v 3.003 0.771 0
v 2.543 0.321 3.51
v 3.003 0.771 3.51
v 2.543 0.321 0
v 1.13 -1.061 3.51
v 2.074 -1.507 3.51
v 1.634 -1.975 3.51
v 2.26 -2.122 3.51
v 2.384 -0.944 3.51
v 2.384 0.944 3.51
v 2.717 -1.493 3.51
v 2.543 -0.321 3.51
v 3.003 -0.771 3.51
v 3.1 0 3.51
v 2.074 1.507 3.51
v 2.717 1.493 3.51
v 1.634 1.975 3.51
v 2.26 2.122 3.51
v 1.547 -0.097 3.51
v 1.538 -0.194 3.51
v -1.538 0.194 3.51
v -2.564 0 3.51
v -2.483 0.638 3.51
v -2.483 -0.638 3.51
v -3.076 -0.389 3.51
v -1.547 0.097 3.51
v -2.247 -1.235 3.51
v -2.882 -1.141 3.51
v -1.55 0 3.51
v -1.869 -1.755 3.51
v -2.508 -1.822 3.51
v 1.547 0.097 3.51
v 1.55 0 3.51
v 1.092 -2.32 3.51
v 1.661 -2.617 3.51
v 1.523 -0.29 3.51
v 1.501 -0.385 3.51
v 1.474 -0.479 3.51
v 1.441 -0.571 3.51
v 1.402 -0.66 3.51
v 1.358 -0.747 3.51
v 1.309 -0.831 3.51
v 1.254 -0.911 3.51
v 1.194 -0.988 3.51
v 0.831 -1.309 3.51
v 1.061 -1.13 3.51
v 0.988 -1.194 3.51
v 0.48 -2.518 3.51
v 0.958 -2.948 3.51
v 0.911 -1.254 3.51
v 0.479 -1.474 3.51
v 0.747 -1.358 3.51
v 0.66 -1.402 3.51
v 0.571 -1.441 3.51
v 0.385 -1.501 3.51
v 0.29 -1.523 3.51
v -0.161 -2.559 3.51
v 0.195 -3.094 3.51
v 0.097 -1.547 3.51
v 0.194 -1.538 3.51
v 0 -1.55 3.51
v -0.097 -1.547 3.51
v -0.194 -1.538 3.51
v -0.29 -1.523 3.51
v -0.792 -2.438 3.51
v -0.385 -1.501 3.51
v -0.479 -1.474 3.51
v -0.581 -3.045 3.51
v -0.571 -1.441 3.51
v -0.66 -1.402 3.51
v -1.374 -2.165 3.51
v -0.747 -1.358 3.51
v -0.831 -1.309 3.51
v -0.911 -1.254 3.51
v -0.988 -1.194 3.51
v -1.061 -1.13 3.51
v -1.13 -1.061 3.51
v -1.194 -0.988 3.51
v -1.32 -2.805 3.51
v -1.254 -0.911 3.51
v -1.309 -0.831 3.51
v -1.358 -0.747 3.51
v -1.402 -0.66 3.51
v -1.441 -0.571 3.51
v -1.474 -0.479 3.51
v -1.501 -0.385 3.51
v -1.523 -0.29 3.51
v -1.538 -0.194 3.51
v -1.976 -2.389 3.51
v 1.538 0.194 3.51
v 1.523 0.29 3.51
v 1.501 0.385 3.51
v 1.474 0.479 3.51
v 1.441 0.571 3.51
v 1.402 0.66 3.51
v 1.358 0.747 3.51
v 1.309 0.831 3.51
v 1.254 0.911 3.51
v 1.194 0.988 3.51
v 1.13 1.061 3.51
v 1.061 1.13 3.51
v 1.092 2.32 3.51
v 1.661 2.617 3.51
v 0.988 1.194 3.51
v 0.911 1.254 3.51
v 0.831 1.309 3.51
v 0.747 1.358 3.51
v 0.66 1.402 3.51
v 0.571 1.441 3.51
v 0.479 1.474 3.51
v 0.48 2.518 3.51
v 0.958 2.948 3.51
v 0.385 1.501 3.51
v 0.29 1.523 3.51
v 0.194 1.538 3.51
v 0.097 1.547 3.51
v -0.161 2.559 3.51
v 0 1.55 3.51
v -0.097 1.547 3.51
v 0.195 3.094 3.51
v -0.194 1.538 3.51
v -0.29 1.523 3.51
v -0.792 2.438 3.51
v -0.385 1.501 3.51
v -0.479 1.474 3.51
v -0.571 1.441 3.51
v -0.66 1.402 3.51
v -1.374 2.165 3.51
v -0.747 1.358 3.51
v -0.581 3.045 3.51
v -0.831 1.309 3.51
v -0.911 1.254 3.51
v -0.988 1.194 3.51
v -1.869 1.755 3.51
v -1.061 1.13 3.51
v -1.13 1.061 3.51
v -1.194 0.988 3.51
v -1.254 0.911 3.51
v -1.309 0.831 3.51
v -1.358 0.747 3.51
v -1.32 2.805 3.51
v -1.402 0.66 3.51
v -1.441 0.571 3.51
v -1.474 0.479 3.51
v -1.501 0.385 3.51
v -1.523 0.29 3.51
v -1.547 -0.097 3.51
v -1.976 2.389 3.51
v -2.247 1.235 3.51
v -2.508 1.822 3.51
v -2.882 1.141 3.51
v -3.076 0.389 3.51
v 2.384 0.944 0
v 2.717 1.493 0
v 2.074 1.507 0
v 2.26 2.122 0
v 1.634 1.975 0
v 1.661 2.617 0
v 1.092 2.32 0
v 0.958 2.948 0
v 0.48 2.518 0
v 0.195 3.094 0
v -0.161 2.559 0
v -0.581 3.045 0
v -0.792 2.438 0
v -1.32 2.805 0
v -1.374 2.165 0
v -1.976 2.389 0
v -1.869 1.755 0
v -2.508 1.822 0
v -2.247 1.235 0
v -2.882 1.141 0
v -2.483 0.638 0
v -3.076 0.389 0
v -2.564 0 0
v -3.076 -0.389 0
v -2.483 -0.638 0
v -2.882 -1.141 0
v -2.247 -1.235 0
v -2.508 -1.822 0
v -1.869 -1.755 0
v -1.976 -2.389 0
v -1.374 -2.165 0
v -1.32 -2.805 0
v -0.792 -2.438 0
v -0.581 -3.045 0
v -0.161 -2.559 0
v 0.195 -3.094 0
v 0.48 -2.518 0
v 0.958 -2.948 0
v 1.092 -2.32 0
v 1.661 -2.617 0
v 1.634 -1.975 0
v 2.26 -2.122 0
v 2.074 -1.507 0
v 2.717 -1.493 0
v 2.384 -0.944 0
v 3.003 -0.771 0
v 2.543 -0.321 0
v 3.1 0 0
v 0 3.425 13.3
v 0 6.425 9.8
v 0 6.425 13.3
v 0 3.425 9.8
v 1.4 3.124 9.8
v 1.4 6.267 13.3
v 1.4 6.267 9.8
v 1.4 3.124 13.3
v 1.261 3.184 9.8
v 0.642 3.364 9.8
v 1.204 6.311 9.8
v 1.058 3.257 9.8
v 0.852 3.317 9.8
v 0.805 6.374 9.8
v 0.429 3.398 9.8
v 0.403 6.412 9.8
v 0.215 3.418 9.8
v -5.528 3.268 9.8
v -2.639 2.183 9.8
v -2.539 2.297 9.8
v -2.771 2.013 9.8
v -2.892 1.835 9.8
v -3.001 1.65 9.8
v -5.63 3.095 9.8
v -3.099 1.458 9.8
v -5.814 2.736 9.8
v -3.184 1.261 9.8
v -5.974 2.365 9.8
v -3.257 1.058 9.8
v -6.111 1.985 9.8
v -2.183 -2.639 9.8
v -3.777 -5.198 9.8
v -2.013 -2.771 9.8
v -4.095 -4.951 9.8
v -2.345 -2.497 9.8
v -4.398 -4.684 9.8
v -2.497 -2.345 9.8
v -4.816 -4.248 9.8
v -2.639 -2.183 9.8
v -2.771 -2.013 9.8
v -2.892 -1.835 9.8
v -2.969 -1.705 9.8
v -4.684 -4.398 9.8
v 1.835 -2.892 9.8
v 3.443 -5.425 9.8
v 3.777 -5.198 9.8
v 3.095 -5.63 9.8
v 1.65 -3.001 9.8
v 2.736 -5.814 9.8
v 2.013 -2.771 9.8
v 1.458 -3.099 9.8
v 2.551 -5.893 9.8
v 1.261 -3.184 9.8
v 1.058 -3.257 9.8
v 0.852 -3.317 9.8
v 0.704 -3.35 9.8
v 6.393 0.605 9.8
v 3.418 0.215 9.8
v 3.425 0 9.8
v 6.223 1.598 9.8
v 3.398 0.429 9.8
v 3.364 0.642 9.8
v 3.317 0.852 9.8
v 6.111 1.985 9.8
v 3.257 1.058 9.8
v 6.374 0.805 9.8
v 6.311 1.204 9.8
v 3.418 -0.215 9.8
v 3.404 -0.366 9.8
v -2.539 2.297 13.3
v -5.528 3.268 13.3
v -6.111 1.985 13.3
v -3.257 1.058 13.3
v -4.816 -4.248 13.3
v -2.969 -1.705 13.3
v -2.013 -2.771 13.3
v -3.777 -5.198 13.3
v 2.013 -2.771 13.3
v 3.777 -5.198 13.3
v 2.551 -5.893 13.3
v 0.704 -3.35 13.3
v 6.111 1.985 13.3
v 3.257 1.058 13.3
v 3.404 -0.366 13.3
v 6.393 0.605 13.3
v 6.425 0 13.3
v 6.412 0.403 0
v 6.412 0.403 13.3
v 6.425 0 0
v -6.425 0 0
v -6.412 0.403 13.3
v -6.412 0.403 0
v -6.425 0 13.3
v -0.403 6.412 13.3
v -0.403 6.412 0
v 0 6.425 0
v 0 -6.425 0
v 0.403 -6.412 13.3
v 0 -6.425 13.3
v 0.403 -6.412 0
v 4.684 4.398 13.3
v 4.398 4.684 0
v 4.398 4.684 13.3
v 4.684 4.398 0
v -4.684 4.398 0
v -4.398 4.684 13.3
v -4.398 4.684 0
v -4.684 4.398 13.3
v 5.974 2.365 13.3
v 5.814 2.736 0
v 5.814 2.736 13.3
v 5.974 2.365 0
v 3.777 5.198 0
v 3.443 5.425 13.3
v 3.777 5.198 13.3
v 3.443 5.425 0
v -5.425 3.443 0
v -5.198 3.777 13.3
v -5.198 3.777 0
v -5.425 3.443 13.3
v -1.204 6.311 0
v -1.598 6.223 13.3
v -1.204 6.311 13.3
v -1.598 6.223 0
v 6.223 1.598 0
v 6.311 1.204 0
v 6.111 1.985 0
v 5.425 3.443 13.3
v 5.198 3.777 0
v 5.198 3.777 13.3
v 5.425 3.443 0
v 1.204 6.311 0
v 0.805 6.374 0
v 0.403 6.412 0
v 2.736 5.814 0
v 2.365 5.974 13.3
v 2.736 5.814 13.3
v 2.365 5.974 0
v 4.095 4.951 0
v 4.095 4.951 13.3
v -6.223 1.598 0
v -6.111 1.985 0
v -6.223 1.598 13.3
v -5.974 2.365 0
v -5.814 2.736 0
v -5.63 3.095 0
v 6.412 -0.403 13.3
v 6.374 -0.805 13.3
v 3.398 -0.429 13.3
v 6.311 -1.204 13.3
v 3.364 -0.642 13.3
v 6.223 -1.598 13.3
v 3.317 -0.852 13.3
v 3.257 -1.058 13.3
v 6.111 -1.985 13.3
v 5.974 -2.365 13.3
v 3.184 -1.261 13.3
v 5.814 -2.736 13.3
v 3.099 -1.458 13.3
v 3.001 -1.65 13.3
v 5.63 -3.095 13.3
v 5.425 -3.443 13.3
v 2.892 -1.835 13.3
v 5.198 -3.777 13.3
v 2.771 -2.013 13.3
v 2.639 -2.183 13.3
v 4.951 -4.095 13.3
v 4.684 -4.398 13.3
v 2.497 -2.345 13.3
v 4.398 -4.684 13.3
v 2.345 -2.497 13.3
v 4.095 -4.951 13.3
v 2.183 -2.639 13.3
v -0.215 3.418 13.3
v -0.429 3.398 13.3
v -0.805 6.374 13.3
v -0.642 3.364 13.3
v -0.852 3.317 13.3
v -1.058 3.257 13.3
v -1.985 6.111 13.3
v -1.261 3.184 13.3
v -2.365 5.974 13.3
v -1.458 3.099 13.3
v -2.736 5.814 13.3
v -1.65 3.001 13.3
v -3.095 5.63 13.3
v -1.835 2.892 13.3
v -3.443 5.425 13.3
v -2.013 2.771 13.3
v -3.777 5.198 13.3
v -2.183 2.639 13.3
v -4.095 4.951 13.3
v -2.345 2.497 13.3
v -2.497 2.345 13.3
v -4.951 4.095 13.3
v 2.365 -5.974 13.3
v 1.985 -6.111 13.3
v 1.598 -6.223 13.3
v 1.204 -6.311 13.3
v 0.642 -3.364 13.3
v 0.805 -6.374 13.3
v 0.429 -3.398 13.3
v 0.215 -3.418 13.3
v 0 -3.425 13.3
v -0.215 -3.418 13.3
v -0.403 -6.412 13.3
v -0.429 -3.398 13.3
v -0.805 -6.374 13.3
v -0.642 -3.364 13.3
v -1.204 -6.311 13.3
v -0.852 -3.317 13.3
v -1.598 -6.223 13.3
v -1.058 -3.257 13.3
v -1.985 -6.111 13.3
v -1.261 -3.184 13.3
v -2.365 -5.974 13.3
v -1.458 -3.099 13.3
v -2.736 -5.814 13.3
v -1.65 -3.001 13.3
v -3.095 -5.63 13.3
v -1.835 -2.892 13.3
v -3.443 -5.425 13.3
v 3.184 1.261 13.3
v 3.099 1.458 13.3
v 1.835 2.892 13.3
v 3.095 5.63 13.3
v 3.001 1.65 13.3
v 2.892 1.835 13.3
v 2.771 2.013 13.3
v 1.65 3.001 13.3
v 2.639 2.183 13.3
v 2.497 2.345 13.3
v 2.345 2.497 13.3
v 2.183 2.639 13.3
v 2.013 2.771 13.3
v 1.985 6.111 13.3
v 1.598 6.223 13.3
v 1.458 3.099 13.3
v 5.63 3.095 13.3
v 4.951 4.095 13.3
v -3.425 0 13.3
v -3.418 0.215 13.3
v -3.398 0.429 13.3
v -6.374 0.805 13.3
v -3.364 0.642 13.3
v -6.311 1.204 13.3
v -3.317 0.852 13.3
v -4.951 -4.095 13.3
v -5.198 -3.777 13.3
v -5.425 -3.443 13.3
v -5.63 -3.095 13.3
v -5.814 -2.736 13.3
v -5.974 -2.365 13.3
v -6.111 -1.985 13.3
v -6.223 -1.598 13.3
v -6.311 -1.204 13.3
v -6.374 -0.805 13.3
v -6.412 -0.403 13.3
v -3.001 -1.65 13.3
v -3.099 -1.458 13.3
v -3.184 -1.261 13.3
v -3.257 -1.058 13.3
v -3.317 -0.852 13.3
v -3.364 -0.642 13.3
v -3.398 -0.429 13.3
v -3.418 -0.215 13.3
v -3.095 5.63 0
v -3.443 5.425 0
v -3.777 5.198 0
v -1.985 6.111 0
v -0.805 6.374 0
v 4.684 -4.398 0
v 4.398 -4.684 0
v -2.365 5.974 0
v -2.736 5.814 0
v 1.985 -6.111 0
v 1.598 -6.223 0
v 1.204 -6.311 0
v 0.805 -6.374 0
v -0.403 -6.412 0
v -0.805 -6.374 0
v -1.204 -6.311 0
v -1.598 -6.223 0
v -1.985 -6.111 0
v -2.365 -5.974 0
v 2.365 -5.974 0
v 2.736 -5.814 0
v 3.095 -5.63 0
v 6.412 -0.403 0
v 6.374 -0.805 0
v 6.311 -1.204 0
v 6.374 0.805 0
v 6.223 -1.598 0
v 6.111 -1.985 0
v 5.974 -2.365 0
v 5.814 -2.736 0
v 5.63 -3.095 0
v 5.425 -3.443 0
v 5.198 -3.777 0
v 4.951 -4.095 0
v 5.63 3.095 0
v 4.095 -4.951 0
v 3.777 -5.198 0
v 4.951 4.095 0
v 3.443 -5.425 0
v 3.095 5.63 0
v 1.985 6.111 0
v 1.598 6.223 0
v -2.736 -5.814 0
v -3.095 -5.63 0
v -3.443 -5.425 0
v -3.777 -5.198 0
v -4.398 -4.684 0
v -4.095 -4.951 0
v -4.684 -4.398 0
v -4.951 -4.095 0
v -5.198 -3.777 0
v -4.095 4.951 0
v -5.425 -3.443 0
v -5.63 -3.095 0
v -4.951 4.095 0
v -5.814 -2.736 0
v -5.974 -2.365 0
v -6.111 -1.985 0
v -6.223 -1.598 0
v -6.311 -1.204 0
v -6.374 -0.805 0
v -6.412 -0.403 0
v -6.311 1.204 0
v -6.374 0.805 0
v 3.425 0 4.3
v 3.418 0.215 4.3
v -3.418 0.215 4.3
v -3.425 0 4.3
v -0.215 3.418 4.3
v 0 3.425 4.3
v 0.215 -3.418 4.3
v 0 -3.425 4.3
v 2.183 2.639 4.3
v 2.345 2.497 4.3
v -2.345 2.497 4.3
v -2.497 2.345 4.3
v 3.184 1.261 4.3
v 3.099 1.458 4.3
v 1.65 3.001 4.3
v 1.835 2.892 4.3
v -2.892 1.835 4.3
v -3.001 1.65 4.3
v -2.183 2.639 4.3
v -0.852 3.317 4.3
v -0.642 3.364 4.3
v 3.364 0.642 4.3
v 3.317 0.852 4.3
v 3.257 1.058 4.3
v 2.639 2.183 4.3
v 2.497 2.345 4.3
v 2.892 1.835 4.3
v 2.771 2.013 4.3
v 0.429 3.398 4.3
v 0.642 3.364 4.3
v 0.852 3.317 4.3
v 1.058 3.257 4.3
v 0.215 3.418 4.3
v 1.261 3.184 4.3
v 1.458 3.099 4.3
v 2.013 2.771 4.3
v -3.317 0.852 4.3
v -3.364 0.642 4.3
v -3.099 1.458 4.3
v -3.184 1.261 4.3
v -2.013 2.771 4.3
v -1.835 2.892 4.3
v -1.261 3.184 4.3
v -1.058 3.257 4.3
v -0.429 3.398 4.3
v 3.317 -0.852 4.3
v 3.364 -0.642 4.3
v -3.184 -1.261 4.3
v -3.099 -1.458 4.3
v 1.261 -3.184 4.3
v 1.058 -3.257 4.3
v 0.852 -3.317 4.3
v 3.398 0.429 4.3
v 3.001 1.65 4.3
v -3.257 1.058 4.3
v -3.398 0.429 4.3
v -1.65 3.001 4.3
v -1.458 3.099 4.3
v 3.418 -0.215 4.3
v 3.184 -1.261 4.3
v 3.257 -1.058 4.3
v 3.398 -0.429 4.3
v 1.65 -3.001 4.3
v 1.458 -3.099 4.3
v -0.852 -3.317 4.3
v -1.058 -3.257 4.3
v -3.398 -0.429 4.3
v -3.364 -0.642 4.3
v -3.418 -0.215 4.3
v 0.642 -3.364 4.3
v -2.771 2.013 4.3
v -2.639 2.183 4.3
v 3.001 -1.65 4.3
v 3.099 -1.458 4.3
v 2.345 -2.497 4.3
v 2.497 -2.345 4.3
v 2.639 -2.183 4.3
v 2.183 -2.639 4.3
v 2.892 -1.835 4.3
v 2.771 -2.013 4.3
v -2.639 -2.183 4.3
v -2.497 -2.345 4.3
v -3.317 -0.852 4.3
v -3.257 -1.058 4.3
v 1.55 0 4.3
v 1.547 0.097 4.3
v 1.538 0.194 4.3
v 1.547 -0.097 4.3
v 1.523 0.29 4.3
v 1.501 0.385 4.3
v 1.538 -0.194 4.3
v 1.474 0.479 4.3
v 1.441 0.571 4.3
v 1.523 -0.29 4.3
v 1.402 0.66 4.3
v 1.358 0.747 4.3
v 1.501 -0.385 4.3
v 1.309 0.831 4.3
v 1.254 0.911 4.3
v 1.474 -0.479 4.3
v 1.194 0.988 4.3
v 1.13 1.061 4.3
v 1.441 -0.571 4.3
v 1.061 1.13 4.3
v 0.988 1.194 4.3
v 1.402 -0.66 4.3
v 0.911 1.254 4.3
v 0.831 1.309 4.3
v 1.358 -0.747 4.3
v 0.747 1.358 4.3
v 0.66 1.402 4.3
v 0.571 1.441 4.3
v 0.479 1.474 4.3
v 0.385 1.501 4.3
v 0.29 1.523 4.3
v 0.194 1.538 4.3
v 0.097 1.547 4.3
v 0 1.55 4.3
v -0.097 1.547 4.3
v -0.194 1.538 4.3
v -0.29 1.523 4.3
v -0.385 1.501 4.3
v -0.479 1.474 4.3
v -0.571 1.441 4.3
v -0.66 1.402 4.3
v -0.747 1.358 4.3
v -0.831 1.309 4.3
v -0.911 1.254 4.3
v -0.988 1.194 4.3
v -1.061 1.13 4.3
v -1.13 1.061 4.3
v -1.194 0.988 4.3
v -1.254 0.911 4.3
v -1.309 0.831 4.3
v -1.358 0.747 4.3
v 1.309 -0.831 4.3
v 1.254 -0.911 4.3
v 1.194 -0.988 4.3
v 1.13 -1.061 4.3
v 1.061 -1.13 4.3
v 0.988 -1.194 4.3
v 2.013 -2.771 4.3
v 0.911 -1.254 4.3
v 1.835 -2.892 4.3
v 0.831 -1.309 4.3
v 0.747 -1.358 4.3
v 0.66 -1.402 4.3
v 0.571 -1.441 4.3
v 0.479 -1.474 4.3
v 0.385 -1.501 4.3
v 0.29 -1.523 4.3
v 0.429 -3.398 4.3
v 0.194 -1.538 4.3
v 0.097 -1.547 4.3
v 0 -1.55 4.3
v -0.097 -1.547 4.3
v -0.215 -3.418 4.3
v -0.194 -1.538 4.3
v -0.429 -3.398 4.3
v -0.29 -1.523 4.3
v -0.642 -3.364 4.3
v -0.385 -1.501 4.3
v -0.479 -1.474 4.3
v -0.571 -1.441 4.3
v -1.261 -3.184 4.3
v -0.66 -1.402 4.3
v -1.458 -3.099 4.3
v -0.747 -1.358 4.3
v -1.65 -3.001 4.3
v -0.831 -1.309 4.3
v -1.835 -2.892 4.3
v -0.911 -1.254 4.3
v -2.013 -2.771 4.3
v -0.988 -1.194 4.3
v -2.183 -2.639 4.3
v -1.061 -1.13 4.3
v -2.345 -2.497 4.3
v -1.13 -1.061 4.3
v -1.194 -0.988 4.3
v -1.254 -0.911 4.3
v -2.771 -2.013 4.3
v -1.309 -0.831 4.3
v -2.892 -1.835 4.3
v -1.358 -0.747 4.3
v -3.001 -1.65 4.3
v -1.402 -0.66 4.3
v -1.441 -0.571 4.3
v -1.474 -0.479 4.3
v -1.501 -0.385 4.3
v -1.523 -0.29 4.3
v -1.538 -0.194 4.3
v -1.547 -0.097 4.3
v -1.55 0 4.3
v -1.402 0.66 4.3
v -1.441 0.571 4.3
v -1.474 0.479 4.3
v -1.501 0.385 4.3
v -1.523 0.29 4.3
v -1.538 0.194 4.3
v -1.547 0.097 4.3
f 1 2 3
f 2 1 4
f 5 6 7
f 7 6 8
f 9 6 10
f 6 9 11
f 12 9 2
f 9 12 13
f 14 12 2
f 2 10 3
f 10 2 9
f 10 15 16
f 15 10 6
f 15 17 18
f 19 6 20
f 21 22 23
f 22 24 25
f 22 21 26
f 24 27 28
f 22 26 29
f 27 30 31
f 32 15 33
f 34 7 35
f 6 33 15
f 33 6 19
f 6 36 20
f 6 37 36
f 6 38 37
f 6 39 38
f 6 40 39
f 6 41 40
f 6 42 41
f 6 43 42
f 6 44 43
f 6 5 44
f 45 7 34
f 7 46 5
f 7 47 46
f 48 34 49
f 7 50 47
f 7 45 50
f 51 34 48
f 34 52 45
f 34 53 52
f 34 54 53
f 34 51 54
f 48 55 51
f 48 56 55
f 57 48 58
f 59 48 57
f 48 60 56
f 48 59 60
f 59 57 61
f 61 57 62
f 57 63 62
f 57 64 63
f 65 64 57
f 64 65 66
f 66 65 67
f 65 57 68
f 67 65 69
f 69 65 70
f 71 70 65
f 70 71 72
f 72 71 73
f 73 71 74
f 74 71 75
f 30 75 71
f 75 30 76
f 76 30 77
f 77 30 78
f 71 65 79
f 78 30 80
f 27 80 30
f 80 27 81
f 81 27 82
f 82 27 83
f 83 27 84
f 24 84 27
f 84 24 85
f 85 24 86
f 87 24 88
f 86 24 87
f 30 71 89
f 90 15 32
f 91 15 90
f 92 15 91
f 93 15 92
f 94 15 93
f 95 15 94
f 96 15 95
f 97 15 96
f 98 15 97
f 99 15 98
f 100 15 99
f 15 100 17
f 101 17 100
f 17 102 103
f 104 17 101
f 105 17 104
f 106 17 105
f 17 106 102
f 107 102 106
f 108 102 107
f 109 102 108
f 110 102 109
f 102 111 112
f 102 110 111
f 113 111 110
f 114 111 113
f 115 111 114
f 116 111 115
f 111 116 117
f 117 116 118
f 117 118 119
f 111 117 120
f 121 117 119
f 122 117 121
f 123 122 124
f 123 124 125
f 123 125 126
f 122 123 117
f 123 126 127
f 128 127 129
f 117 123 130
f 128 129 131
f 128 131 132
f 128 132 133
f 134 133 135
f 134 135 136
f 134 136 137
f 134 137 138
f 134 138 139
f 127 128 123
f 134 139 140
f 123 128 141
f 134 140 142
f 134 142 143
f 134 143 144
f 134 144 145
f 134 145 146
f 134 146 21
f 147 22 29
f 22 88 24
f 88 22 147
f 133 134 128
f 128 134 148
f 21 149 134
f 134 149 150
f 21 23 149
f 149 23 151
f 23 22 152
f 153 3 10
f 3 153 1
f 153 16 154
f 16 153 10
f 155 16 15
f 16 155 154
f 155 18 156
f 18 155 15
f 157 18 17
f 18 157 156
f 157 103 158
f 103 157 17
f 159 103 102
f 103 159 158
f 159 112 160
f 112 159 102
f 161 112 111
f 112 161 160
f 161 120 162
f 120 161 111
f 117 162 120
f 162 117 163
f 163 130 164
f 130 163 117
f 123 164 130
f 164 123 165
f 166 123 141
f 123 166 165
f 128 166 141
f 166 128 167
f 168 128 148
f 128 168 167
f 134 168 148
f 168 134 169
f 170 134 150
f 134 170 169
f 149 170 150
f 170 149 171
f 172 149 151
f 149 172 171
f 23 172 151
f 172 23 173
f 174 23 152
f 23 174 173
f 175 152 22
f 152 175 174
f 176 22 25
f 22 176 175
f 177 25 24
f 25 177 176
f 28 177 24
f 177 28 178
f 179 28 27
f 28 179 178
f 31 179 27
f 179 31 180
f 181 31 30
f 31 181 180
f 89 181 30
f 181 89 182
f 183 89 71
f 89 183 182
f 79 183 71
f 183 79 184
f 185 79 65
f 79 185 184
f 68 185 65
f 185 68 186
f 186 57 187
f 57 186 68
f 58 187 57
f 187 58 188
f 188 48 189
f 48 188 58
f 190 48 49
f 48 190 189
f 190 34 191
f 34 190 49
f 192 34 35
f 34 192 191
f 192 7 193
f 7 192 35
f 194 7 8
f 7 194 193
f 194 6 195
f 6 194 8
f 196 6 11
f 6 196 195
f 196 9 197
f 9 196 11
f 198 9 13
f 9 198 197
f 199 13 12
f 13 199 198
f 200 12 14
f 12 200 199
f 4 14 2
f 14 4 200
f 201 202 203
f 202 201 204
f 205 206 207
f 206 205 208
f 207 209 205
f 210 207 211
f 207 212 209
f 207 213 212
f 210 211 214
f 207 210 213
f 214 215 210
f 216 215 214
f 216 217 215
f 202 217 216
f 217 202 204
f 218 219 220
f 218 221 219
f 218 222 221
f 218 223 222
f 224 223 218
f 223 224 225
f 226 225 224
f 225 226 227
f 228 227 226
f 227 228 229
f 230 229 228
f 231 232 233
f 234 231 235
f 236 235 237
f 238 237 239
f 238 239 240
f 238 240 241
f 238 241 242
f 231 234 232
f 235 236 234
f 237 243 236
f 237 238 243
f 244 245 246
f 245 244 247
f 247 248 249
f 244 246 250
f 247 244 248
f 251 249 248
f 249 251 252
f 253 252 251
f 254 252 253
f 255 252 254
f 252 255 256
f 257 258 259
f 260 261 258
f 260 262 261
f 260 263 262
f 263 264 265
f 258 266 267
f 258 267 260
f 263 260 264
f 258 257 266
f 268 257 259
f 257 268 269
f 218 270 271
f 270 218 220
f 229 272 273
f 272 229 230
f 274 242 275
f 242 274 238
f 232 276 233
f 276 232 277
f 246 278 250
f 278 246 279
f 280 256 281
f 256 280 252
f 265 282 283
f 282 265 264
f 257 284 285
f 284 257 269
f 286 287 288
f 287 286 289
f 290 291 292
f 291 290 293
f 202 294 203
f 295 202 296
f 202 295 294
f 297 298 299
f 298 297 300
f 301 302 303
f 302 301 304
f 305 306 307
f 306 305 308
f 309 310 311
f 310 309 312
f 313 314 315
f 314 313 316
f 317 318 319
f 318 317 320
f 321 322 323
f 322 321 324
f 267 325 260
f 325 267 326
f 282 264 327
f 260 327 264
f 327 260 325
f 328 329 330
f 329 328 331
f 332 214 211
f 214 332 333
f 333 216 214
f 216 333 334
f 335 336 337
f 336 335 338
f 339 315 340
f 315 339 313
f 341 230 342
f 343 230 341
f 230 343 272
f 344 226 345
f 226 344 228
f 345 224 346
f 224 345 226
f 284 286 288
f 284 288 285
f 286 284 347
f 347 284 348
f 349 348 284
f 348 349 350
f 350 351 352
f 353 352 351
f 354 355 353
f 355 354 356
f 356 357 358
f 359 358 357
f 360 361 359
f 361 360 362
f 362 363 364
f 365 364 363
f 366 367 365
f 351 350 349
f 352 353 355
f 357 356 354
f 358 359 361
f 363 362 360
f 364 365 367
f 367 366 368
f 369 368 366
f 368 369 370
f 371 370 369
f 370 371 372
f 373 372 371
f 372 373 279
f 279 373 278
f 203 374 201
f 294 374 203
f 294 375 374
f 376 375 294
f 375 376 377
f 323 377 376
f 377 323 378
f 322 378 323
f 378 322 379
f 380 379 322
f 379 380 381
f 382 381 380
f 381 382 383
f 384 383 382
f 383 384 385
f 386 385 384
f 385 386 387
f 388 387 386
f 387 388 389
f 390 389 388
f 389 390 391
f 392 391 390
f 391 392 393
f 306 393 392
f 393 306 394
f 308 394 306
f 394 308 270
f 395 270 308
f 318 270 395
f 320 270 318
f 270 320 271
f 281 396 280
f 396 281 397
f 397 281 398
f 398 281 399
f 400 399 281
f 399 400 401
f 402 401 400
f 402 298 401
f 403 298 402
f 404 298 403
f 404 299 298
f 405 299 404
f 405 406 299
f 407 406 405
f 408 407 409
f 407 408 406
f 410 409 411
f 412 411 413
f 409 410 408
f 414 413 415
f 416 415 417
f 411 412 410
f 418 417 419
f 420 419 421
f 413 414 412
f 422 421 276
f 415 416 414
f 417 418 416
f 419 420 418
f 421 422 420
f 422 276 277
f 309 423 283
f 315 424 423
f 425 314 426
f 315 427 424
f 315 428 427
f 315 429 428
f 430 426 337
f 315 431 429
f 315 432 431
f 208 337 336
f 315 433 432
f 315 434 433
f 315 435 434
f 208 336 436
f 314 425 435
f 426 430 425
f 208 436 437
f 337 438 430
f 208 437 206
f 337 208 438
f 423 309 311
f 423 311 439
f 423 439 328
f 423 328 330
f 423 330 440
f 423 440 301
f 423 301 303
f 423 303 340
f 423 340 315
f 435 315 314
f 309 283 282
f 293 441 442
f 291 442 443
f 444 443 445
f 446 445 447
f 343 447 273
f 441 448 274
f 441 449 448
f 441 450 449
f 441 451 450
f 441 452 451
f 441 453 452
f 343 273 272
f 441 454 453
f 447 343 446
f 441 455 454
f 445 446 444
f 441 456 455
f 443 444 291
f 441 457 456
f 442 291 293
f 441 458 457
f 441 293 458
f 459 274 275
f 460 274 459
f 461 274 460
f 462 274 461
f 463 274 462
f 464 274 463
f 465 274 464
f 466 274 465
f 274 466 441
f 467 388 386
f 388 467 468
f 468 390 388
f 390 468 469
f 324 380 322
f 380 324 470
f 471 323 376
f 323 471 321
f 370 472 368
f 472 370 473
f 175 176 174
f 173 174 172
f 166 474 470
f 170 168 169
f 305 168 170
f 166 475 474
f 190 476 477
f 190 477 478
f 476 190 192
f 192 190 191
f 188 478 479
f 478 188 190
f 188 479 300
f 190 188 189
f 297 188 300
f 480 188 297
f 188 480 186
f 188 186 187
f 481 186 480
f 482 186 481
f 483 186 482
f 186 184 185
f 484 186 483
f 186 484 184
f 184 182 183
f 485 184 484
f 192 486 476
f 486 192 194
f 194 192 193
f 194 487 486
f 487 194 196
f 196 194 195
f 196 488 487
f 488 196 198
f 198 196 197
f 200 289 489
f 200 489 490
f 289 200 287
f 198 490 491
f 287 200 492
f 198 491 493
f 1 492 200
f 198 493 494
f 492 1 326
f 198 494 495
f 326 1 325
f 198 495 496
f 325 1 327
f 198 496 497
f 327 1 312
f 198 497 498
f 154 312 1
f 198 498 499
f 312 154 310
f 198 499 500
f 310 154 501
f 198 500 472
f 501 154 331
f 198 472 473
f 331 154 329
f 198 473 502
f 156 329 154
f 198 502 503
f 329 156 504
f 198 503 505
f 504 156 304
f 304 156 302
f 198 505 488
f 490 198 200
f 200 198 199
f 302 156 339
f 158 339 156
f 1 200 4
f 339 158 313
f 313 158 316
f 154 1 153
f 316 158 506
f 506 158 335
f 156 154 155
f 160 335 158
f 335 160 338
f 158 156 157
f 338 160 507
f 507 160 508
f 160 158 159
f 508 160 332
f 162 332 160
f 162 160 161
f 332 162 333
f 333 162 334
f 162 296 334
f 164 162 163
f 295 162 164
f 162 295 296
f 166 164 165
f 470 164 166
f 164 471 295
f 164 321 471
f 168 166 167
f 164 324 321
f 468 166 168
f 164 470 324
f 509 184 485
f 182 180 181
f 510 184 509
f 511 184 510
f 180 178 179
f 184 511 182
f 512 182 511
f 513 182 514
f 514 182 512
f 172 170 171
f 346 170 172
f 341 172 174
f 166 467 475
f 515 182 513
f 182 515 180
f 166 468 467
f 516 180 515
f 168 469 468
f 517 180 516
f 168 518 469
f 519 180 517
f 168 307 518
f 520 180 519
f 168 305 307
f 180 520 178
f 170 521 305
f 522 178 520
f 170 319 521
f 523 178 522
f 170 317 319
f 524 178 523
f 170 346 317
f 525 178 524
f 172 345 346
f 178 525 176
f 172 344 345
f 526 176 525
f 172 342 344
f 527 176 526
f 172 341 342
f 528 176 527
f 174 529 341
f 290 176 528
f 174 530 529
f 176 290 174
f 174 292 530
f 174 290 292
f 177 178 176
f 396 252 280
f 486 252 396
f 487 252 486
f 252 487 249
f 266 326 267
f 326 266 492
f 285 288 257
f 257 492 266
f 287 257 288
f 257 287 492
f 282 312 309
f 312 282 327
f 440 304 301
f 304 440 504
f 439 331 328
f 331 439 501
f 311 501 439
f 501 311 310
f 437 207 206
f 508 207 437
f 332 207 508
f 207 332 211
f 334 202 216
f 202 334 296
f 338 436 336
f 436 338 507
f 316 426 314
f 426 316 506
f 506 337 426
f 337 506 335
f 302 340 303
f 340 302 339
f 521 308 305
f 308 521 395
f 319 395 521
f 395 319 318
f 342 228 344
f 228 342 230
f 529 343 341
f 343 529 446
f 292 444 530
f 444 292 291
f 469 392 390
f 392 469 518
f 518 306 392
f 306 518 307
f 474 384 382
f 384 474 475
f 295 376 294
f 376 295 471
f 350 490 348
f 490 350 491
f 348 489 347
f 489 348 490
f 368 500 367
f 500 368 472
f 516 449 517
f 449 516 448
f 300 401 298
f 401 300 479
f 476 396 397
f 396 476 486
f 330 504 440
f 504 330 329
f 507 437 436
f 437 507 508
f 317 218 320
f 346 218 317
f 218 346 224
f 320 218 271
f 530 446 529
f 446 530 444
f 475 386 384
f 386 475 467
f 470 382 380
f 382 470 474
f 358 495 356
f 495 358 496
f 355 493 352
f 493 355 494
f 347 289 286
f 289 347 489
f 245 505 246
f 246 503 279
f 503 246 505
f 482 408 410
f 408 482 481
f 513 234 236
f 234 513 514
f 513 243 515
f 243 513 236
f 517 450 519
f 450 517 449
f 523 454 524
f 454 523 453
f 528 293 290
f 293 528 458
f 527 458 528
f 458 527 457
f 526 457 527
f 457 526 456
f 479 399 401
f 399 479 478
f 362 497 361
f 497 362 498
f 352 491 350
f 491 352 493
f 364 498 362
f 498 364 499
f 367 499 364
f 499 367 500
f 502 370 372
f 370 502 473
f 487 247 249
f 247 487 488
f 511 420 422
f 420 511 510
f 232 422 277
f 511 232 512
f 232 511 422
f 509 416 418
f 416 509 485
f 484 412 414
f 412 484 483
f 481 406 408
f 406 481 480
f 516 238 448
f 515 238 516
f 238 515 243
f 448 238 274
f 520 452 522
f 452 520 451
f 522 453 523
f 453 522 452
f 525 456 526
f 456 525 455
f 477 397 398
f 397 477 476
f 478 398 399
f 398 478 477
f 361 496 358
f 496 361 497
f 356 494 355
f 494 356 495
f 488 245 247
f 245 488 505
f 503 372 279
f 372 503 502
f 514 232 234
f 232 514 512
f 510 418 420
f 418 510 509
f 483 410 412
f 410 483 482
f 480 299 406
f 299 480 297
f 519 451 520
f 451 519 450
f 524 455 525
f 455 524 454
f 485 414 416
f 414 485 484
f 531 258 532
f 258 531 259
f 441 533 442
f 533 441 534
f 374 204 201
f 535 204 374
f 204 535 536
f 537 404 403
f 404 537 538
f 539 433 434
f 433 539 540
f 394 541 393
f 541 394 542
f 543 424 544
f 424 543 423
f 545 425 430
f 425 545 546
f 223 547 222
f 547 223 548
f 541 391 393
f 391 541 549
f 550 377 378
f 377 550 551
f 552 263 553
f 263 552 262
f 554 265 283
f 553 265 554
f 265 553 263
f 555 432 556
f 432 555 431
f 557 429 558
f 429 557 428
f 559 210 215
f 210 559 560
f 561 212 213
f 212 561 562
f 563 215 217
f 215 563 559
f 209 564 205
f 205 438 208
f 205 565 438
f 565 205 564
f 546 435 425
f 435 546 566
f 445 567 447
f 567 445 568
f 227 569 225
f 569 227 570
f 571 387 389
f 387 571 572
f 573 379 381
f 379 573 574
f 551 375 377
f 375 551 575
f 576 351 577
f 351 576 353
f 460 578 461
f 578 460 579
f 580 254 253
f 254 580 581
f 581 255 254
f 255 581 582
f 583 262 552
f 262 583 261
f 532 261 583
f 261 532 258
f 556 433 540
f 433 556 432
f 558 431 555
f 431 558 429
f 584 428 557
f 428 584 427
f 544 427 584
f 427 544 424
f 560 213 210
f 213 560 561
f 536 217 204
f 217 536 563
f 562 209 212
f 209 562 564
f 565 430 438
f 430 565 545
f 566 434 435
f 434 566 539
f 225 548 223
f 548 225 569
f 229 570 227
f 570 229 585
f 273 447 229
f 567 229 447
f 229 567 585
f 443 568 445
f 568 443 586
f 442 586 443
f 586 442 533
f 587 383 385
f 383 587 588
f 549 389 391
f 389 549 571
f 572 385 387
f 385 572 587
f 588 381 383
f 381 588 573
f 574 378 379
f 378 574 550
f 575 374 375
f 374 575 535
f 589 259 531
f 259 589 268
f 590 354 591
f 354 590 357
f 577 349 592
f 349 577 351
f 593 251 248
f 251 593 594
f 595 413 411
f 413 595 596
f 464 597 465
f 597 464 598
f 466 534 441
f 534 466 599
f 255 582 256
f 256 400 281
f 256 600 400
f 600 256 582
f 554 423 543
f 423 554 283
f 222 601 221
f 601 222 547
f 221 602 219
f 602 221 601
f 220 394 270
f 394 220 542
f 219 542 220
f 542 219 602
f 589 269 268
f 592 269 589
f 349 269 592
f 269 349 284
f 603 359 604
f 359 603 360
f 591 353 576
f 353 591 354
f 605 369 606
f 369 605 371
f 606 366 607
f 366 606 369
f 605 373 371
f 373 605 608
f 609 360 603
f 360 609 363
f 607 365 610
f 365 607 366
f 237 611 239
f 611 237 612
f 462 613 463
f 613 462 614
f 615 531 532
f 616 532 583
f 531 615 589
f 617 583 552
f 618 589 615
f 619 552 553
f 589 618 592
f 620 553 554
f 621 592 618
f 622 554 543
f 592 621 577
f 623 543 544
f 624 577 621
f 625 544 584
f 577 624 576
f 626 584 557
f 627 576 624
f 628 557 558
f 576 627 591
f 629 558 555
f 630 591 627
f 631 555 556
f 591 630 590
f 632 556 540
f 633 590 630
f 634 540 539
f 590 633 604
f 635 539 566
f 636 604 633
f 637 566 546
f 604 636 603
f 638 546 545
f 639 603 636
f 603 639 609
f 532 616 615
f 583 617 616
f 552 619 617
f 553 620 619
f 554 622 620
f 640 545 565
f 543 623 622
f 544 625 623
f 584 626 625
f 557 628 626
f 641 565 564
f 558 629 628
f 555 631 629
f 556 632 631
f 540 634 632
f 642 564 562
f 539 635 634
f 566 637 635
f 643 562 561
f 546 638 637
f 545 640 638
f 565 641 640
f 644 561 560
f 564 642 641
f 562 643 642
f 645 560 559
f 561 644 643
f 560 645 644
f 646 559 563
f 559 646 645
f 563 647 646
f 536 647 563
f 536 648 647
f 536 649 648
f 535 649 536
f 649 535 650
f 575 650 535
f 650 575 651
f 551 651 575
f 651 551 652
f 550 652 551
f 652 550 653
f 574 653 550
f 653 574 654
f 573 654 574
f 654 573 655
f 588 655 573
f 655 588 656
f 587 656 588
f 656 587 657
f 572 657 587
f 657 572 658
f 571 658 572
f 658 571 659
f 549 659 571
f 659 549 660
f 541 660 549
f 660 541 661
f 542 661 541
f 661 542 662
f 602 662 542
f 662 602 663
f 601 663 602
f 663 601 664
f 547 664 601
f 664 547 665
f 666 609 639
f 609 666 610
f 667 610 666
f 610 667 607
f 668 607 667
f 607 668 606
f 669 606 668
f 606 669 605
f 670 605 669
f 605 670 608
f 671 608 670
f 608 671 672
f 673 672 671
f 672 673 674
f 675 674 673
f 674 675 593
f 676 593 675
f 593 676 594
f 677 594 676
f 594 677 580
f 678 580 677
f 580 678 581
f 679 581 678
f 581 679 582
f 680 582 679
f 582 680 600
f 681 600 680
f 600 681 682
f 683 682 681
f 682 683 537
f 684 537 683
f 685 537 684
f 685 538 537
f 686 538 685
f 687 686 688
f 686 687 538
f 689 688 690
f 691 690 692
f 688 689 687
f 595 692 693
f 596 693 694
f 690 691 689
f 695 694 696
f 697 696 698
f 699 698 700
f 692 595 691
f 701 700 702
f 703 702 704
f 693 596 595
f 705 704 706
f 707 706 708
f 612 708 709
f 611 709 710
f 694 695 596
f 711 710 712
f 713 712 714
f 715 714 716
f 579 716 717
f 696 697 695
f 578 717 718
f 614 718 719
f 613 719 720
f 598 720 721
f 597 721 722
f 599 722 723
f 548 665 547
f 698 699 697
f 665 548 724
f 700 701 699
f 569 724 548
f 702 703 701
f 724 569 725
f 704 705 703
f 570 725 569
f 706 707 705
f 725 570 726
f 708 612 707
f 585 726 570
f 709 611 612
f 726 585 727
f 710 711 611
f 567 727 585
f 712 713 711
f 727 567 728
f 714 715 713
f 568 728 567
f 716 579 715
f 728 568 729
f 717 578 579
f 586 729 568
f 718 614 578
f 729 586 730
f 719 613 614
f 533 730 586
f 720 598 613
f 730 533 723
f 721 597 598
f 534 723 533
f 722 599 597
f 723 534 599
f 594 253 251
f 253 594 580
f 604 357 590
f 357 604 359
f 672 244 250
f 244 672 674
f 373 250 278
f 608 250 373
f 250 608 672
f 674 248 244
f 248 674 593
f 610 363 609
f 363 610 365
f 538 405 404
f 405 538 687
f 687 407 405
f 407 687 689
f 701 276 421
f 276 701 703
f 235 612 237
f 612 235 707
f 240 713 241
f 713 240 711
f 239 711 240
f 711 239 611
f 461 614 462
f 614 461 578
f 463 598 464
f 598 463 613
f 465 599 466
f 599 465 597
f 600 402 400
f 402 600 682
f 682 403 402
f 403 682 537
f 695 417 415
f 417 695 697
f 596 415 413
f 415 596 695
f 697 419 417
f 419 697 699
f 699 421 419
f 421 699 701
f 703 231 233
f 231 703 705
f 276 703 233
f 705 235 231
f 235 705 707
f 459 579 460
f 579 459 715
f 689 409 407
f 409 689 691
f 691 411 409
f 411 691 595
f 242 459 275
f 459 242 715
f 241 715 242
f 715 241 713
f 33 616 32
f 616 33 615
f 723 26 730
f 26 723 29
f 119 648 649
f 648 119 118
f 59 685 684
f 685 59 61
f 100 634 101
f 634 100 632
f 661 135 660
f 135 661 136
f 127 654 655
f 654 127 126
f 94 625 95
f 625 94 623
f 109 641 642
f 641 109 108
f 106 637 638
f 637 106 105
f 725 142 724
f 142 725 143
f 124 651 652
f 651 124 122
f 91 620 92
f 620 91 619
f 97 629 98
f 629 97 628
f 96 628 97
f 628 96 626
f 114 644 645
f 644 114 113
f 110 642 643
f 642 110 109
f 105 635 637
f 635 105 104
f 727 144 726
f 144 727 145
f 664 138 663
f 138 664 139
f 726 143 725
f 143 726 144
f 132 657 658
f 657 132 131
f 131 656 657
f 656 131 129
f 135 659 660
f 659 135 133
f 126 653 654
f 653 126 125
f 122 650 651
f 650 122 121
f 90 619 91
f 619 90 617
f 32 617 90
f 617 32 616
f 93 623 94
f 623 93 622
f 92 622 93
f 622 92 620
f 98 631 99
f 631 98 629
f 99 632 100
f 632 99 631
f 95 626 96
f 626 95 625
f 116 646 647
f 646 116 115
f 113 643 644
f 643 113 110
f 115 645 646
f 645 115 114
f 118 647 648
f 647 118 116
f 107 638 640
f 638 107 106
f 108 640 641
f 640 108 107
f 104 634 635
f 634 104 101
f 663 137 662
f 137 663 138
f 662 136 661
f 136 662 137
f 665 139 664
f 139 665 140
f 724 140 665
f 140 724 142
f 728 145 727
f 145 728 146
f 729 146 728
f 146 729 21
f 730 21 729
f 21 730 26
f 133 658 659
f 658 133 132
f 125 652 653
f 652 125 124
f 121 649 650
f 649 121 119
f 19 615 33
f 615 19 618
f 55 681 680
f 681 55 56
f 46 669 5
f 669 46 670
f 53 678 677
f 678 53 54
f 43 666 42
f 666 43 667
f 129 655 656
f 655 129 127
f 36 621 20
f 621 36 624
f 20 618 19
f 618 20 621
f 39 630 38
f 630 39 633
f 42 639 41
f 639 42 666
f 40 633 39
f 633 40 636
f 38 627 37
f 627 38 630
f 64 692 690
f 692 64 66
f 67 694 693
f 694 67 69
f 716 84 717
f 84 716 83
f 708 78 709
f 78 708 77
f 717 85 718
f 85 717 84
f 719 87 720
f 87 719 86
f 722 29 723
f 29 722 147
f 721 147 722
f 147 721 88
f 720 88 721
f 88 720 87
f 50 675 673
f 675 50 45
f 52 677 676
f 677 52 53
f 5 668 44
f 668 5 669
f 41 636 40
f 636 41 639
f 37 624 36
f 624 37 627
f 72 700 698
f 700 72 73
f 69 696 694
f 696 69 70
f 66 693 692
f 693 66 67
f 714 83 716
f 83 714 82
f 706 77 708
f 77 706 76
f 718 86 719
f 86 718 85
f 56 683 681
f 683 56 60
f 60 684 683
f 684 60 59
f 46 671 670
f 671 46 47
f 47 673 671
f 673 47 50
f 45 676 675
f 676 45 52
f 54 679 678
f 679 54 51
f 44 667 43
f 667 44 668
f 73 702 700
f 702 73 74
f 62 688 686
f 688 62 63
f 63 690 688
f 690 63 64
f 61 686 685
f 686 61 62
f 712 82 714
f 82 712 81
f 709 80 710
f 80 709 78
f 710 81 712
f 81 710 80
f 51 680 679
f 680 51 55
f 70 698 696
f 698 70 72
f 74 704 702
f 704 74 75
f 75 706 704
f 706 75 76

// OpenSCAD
/*module wheels()
{
    $fn = 250;

    difference() 
    {
        cylinder(5.5+5,5,5);
        linear_extrude(height = 10, center = false, convexity = 1, $fn = 1000)
            circle(r = 1.5);
        N=25;
        translate([0,0,-1])
            for(i=[1:1:N]){
                 rotate([0,0,(360/N)*i])
                    translate([1.1,0])
                        linear_extrude(4.5)
                            circle(2,$fn=3);
                
            }
        translate([0,0,5])cylinder(22+5,7/2,7/2);
    }
    translate([0,0,3.5])cylinder(10.5,1.5,1.5);
    translate([0,0,0])cylinder(4,1,1);
}

wheels();*/

N=25;
K = 5;
$fn = 100;
epsilon = 0.01;
big_cy = 6.85/2;
big_cy_h = 4.5;
servoHole = 1.1;
servoheadR = 3;
servohead = 3.5;
bottom_joint = 0.8;
bottom_wall = bottom_joint + servohead;
wall=3;
wheel_bounes=1.4;

union()
{
    difference()
    {
        union()
        {
            difference()
            {
                cylinder(bottom_wall+2*big_cy_h,big_cy+wall,big_cy+wall);
                translate([0,0,bottom_wall])
                    cylinder(2*big_cy_h+epsilon*2,big_cy,big_cy);
                for( i = [0:360/5:360])
                {
                    rotate([0,0,i])
                        translate([0,0,bottom_wall+big_cy_h+1])
                            cube([wheel_bounes,big_cy+wall+epsilon,big_cy_h+epsilon*2]);
                }
            };
        };
        
        translate([0,0,-epsilon])
            for(i=[1:1:N]){
                 rotate([0,0,(360/N)*i])
                    translate([1.1,0])
                        linear_extrude(servohead+epsilon*2)
                            circle(2,$fn=3);
            }
        translate([0,0,-epsilon])
            cylinder(big_cy_h+2*epsilon,1.55,1.55);
    };
    
    
}
